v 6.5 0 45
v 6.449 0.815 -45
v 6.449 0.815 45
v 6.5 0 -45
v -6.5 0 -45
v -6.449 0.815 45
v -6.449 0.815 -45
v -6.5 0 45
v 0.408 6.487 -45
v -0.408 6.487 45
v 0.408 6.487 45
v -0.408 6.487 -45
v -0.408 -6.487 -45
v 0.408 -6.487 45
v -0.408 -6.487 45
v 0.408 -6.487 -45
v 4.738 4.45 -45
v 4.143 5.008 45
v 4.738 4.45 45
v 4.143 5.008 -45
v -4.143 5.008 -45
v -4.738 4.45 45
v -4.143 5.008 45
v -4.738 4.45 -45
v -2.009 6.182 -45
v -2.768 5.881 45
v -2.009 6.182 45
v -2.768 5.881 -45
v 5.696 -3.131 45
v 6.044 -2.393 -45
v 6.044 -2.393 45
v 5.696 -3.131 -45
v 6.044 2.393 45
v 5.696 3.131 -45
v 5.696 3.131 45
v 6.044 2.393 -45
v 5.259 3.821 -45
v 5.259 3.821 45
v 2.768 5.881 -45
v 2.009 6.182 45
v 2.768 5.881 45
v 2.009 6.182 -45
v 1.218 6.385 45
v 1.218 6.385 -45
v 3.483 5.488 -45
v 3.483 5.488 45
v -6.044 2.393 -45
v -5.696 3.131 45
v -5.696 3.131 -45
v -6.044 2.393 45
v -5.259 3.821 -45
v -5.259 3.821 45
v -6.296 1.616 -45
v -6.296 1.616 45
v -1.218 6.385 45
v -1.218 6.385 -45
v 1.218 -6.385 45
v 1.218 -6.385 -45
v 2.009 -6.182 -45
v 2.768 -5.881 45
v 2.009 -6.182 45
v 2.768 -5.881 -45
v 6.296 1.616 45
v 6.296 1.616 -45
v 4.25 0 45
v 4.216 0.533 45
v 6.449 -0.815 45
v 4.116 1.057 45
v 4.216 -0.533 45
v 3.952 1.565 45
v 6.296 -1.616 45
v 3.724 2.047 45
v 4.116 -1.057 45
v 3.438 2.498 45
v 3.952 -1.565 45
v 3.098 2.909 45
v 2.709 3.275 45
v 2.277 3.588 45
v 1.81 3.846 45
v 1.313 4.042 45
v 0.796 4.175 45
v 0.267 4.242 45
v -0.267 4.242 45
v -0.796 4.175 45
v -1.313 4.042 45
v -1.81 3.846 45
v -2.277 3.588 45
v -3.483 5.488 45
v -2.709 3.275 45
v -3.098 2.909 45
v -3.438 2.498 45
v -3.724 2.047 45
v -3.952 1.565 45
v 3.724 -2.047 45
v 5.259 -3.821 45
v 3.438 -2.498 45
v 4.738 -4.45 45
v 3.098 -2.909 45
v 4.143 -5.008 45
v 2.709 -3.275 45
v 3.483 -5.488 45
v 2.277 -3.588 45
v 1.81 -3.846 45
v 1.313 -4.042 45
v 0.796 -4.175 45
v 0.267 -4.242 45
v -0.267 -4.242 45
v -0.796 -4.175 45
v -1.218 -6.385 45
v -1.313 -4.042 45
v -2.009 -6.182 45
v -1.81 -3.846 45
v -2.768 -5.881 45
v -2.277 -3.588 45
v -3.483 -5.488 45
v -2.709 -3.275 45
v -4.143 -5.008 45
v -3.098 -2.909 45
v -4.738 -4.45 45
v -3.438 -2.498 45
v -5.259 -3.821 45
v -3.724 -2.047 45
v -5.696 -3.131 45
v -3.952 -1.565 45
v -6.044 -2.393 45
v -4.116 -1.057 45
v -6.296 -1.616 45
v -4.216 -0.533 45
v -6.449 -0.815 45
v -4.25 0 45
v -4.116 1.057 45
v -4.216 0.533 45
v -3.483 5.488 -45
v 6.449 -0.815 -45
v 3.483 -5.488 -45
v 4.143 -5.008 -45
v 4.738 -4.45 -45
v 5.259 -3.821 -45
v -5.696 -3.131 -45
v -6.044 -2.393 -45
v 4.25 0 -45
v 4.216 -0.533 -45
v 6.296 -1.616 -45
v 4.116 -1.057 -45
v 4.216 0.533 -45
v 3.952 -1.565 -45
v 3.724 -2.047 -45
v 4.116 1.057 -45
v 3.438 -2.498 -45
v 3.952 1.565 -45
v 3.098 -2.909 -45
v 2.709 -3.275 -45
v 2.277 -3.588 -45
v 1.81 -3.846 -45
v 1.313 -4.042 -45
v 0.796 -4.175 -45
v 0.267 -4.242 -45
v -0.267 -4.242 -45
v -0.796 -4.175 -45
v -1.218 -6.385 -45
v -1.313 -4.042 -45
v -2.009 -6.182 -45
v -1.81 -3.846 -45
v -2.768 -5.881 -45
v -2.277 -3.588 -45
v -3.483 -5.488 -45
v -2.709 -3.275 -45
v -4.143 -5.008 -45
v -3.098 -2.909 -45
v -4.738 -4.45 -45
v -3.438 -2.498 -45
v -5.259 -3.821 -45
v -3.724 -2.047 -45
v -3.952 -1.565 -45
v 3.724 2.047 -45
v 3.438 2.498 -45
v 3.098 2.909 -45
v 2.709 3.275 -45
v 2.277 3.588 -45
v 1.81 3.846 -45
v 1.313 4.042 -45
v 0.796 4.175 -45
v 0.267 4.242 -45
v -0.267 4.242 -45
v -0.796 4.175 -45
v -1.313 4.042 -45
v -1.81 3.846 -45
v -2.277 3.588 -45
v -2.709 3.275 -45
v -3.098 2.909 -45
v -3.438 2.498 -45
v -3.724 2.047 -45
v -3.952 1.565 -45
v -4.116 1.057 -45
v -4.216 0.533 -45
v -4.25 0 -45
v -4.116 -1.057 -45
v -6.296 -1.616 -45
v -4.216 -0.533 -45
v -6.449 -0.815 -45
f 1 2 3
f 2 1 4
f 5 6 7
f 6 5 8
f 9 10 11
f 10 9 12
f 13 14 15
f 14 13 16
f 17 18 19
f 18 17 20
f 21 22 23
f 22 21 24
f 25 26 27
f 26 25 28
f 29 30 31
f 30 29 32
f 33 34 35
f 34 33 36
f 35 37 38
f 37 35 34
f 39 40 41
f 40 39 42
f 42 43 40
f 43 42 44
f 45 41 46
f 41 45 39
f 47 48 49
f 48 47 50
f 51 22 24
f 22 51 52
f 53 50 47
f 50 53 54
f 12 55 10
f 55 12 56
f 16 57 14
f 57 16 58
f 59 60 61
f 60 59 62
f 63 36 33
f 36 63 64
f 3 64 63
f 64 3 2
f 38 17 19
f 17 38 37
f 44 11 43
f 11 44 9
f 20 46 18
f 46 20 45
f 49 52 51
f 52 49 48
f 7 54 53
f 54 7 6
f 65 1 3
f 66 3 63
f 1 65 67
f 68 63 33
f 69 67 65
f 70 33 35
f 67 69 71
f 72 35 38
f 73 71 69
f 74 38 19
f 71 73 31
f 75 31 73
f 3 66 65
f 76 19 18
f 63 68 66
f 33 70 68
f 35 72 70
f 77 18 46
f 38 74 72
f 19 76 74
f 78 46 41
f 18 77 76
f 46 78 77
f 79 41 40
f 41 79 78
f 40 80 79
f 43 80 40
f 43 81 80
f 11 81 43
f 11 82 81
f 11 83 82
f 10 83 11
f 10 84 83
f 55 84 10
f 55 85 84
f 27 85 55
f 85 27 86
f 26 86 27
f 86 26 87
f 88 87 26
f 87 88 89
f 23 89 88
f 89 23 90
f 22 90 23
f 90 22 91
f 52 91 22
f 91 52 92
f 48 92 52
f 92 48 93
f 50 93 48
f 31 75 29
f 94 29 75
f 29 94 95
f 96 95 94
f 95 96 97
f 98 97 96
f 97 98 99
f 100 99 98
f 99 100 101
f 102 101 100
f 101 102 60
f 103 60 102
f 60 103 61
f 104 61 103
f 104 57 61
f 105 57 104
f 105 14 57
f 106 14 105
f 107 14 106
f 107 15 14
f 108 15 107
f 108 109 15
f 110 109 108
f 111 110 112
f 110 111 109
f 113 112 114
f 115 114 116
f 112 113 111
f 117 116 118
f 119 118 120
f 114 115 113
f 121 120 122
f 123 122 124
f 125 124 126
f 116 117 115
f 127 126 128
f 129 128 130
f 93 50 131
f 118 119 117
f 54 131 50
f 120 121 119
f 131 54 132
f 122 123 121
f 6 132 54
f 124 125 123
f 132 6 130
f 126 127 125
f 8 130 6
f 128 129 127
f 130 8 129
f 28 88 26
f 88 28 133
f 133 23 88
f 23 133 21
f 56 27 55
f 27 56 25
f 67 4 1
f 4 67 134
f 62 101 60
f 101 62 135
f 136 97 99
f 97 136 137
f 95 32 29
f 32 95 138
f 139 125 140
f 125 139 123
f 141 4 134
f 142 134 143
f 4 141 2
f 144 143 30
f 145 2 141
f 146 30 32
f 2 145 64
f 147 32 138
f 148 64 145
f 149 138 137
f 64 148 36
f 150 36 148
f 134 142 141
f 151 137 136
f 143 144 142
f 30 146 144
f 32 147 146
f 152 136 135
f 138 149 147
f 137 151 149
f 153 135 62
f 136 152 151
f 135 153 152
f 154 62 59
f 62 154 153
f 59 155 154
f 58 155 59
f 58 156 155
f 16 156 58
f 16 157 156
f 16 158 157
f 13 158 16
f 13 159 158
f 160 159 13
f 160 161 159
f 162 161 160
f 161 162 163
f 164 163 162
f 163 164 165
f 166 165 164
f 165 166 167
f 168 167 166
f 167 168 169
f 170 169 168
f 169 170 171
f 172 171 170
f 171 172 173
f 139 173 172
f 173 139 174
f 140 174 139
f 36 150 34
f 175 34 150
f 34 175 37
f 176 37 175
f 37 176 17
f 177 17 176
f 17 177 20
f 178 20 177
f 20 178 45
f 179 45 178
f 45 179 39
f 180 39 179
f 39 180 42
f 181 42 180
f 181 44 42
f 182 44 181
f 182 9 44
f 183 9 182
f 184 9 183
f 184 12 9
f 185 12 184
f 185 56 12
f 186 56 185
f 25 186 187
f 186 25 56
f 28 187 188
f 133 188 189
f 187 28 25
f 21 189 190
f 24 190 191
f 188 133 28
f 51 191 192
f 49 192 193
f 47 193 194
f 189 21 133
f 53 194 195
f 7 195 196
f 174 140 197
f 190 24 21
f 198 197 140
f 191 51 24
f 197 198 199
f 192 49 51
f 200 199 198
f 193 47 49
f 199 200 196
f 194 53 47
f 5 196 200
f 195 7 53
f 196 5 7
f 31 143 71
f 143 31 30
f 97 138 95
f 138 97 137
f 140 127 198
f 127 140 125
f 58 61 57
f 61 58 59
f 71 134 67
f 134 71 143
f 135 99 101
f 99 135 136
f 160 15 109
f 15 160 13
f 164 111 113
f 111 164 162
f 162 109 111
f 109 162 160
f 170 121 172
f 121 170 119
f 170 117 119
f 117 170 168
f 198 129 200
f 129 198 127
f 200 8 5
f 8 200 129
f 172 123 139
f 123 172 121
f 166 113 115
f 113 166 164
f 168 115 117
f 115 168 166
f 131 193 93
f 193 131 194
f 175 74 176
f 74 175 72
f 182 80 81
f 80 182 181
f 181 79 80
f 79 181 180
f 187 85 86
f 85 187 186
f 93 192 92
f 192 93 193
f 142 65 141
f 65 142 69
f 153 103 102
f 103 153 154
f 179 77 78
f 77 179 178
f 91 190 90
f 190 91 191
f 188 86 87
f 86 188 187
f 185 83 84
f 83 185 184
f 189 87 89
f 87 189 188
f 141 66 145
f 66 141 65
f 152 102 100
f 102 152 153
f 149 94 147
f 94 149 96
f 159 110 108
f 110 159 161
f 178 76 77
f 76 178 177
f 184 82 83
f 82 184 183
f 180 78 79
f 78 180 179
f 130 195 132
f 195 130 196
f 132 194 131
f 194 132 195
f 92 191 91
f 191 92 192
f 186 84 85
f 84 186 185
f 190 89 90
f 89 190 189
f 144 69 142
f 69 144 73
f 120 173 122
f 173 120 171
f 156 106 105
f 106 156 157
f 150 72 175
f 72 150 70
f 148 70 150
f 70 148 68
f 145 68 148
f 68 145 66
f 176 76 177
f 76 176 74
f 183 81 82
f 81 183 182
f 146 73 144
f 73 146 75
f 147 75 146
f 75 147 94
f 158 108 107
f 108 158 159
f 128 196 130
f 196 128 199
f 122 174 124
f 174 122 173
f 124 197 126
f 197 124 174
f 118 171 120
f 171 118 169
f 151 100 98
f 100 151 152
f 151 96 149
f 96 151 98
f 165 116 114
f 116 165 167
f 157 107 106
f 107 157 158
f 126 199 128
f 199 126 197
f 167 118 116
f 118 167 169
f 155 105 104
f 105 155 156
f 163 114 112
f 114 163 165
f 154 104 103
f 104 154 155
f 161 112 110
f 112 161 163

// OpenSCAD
$fn = 50;


difference() {
	union() {
		translate(v = [0, 0, -45.0000000000]) {
			cylinder(h = 90, r = 6.5000000000);
		}
	}
	union() {
		translate(v = [0, 0, -100.0000000000]) {
			cylinder(h = 200, r = 4.2500000000);
		}
	}
}
